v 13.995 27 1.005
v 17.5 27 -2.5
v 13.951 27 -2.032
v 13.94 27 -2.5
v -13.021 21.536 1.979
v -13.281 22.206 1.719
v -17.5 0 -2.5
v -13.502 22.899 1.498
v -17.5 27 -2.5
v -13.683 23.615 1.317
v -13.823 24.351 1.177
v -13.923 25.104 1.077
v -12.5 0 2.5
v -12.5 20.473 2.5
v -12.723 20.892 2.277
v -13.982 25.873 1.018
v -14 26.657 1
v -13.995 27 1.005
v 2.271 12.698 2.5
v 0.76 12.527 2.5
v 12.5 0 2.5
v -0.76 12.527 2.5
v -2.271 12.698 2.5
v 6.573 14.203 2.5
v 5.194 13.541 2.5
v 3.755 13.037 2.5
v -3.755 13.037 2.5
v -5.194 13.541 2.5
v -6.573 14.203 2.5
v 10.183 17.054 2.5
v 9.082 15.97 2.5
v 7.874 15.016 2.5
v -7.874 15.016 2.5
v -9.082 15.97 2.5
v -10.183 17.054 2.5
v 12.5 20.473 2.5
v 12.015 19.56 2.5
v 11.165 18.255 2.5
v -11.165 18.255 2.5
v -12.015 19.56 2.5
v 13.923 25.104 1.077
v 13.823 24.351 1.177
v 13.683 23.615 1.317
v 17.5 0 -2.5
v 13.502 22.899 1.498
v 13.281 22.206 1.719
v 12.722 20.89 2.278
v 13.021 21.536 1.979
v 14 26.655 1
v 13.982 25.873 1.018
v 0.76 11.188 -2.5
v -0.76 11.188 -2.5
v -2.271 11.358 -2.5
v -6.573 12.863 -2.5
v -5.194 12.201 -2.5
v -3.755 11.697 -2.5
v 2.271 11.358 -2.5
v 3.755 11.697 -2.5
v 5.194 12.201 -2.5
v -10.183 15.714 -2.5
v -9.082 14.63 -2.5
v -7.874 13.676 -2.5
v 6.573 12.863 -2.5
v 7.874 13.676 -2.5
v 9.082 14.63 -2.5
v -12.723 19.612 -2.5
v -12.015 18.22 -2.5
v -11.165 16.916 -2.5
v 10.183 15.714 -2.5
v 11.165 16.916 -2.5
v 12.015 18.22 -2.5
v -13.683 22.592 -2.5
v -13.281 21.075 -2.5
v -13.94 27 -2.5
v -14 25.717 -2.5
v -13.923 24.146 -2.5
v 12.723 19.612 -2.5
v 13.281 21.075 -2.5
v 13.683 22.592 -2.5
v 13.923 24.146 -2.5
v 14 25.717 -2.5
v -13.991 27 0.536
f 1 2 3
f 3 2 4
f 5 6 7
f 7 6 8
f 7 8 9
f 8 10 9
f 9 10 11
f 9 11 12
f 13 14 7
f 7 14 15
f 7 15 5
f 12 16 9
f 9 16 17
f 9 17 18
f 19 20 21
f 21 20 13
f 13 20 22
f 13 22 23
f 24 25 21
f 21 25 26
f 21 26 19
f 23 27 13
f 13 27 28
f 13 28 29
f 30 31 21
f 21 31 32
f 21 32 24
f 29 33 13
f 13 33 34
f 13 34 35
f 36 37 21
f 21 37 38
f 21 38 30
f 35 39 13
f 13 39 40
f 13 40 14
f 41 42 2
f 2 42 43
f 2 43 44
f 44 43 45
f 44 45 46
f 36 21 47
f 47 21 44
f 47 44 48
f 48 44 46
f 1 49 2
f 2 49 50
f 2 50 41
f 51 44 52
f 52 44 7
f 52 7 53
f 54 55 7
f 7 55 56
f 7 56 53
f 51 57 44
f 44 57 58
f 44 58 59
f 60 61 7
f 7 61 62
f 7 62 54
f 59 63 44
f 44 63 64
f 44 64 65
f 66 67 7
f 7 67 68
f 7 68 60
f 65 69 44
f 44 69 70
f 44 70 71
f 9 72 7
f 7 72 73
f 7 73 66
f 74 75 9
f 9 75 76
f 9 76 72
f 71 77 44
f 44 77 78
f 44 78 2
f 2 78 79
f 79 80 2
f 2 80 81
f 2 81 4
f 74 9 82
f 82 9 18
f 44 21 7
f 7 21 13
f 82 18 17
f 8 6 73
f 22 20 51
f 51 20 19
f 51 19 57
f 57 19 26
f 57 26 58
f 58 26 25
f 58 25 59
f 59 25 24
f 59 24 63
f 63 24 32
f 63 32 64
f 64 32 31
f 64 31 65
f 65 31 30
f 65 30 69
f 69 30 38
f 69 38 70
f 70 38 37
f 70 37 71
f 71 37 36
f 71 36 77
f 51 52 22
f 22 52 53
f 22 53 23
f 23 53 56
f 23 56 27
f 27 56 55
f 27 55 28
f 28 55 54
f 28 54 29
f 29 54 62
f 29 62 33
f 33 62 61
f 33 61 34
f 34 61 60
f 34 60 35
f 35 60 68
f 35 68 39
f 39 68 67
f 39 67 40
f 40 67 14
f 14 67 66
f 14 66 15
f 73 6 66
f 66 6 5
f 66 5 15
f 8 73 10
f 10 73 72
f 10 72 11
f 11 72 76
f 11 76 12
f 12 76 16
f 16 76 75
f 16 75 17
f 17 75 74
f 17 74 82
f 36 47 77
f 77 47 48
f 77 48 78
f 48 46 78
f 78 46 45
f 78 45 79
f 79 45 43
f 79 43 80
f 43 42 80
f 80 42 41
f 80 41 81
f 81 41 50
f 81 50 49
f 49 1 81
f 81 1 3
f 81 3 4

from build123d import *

# Parameters (mm, degrees)
BOSS_EXTRUDE1_DEPTH     = 27
CUT_EXTRUDE1_DEPTH      = 33.019431415
CUT_EXTRUDE1_DEPTH_BACK = 33.019431415
SKETCH2_R               = 14


with BuildPart() as part:
    # Sketch1 → Boss-Extrude1 (new body)
    with BuildSketch(Plane(origin=(0, 0, 0), x_dir=(1, 0, 0), z_dir=(0, 1, 0))):
        Polygon((-17.5, 2.5), (17.5, 2.5), (12.5, -2.5), (-12.5, -2.5), align=None)
    extrude(amount=BOSS_EXTRUDE1_DEPTH)

    # Sketch2 → Cut-Extrude1 (cut, two sides: drawn at the far end of the back side and taken through both)
    with BuildSketch(Plane(origin=(0, 0.625, 2.332531755), x_dir=(1, 0, 0), z_dir=(0, 0.25881904510251796, 0.9659258262890691)).offset(-CUT_EXTRUDE1_DEPTH_BACK)):
        with Locations((0, 25.432949697)):
            Circle(SKETCH2_R)
    extrude(amount=CUT_EXTRUDE1_DEPTH + CUT_EXTRUDE1_DEPTH_BACK, mode=Mode.SUBTRACT)


solid = part.part
